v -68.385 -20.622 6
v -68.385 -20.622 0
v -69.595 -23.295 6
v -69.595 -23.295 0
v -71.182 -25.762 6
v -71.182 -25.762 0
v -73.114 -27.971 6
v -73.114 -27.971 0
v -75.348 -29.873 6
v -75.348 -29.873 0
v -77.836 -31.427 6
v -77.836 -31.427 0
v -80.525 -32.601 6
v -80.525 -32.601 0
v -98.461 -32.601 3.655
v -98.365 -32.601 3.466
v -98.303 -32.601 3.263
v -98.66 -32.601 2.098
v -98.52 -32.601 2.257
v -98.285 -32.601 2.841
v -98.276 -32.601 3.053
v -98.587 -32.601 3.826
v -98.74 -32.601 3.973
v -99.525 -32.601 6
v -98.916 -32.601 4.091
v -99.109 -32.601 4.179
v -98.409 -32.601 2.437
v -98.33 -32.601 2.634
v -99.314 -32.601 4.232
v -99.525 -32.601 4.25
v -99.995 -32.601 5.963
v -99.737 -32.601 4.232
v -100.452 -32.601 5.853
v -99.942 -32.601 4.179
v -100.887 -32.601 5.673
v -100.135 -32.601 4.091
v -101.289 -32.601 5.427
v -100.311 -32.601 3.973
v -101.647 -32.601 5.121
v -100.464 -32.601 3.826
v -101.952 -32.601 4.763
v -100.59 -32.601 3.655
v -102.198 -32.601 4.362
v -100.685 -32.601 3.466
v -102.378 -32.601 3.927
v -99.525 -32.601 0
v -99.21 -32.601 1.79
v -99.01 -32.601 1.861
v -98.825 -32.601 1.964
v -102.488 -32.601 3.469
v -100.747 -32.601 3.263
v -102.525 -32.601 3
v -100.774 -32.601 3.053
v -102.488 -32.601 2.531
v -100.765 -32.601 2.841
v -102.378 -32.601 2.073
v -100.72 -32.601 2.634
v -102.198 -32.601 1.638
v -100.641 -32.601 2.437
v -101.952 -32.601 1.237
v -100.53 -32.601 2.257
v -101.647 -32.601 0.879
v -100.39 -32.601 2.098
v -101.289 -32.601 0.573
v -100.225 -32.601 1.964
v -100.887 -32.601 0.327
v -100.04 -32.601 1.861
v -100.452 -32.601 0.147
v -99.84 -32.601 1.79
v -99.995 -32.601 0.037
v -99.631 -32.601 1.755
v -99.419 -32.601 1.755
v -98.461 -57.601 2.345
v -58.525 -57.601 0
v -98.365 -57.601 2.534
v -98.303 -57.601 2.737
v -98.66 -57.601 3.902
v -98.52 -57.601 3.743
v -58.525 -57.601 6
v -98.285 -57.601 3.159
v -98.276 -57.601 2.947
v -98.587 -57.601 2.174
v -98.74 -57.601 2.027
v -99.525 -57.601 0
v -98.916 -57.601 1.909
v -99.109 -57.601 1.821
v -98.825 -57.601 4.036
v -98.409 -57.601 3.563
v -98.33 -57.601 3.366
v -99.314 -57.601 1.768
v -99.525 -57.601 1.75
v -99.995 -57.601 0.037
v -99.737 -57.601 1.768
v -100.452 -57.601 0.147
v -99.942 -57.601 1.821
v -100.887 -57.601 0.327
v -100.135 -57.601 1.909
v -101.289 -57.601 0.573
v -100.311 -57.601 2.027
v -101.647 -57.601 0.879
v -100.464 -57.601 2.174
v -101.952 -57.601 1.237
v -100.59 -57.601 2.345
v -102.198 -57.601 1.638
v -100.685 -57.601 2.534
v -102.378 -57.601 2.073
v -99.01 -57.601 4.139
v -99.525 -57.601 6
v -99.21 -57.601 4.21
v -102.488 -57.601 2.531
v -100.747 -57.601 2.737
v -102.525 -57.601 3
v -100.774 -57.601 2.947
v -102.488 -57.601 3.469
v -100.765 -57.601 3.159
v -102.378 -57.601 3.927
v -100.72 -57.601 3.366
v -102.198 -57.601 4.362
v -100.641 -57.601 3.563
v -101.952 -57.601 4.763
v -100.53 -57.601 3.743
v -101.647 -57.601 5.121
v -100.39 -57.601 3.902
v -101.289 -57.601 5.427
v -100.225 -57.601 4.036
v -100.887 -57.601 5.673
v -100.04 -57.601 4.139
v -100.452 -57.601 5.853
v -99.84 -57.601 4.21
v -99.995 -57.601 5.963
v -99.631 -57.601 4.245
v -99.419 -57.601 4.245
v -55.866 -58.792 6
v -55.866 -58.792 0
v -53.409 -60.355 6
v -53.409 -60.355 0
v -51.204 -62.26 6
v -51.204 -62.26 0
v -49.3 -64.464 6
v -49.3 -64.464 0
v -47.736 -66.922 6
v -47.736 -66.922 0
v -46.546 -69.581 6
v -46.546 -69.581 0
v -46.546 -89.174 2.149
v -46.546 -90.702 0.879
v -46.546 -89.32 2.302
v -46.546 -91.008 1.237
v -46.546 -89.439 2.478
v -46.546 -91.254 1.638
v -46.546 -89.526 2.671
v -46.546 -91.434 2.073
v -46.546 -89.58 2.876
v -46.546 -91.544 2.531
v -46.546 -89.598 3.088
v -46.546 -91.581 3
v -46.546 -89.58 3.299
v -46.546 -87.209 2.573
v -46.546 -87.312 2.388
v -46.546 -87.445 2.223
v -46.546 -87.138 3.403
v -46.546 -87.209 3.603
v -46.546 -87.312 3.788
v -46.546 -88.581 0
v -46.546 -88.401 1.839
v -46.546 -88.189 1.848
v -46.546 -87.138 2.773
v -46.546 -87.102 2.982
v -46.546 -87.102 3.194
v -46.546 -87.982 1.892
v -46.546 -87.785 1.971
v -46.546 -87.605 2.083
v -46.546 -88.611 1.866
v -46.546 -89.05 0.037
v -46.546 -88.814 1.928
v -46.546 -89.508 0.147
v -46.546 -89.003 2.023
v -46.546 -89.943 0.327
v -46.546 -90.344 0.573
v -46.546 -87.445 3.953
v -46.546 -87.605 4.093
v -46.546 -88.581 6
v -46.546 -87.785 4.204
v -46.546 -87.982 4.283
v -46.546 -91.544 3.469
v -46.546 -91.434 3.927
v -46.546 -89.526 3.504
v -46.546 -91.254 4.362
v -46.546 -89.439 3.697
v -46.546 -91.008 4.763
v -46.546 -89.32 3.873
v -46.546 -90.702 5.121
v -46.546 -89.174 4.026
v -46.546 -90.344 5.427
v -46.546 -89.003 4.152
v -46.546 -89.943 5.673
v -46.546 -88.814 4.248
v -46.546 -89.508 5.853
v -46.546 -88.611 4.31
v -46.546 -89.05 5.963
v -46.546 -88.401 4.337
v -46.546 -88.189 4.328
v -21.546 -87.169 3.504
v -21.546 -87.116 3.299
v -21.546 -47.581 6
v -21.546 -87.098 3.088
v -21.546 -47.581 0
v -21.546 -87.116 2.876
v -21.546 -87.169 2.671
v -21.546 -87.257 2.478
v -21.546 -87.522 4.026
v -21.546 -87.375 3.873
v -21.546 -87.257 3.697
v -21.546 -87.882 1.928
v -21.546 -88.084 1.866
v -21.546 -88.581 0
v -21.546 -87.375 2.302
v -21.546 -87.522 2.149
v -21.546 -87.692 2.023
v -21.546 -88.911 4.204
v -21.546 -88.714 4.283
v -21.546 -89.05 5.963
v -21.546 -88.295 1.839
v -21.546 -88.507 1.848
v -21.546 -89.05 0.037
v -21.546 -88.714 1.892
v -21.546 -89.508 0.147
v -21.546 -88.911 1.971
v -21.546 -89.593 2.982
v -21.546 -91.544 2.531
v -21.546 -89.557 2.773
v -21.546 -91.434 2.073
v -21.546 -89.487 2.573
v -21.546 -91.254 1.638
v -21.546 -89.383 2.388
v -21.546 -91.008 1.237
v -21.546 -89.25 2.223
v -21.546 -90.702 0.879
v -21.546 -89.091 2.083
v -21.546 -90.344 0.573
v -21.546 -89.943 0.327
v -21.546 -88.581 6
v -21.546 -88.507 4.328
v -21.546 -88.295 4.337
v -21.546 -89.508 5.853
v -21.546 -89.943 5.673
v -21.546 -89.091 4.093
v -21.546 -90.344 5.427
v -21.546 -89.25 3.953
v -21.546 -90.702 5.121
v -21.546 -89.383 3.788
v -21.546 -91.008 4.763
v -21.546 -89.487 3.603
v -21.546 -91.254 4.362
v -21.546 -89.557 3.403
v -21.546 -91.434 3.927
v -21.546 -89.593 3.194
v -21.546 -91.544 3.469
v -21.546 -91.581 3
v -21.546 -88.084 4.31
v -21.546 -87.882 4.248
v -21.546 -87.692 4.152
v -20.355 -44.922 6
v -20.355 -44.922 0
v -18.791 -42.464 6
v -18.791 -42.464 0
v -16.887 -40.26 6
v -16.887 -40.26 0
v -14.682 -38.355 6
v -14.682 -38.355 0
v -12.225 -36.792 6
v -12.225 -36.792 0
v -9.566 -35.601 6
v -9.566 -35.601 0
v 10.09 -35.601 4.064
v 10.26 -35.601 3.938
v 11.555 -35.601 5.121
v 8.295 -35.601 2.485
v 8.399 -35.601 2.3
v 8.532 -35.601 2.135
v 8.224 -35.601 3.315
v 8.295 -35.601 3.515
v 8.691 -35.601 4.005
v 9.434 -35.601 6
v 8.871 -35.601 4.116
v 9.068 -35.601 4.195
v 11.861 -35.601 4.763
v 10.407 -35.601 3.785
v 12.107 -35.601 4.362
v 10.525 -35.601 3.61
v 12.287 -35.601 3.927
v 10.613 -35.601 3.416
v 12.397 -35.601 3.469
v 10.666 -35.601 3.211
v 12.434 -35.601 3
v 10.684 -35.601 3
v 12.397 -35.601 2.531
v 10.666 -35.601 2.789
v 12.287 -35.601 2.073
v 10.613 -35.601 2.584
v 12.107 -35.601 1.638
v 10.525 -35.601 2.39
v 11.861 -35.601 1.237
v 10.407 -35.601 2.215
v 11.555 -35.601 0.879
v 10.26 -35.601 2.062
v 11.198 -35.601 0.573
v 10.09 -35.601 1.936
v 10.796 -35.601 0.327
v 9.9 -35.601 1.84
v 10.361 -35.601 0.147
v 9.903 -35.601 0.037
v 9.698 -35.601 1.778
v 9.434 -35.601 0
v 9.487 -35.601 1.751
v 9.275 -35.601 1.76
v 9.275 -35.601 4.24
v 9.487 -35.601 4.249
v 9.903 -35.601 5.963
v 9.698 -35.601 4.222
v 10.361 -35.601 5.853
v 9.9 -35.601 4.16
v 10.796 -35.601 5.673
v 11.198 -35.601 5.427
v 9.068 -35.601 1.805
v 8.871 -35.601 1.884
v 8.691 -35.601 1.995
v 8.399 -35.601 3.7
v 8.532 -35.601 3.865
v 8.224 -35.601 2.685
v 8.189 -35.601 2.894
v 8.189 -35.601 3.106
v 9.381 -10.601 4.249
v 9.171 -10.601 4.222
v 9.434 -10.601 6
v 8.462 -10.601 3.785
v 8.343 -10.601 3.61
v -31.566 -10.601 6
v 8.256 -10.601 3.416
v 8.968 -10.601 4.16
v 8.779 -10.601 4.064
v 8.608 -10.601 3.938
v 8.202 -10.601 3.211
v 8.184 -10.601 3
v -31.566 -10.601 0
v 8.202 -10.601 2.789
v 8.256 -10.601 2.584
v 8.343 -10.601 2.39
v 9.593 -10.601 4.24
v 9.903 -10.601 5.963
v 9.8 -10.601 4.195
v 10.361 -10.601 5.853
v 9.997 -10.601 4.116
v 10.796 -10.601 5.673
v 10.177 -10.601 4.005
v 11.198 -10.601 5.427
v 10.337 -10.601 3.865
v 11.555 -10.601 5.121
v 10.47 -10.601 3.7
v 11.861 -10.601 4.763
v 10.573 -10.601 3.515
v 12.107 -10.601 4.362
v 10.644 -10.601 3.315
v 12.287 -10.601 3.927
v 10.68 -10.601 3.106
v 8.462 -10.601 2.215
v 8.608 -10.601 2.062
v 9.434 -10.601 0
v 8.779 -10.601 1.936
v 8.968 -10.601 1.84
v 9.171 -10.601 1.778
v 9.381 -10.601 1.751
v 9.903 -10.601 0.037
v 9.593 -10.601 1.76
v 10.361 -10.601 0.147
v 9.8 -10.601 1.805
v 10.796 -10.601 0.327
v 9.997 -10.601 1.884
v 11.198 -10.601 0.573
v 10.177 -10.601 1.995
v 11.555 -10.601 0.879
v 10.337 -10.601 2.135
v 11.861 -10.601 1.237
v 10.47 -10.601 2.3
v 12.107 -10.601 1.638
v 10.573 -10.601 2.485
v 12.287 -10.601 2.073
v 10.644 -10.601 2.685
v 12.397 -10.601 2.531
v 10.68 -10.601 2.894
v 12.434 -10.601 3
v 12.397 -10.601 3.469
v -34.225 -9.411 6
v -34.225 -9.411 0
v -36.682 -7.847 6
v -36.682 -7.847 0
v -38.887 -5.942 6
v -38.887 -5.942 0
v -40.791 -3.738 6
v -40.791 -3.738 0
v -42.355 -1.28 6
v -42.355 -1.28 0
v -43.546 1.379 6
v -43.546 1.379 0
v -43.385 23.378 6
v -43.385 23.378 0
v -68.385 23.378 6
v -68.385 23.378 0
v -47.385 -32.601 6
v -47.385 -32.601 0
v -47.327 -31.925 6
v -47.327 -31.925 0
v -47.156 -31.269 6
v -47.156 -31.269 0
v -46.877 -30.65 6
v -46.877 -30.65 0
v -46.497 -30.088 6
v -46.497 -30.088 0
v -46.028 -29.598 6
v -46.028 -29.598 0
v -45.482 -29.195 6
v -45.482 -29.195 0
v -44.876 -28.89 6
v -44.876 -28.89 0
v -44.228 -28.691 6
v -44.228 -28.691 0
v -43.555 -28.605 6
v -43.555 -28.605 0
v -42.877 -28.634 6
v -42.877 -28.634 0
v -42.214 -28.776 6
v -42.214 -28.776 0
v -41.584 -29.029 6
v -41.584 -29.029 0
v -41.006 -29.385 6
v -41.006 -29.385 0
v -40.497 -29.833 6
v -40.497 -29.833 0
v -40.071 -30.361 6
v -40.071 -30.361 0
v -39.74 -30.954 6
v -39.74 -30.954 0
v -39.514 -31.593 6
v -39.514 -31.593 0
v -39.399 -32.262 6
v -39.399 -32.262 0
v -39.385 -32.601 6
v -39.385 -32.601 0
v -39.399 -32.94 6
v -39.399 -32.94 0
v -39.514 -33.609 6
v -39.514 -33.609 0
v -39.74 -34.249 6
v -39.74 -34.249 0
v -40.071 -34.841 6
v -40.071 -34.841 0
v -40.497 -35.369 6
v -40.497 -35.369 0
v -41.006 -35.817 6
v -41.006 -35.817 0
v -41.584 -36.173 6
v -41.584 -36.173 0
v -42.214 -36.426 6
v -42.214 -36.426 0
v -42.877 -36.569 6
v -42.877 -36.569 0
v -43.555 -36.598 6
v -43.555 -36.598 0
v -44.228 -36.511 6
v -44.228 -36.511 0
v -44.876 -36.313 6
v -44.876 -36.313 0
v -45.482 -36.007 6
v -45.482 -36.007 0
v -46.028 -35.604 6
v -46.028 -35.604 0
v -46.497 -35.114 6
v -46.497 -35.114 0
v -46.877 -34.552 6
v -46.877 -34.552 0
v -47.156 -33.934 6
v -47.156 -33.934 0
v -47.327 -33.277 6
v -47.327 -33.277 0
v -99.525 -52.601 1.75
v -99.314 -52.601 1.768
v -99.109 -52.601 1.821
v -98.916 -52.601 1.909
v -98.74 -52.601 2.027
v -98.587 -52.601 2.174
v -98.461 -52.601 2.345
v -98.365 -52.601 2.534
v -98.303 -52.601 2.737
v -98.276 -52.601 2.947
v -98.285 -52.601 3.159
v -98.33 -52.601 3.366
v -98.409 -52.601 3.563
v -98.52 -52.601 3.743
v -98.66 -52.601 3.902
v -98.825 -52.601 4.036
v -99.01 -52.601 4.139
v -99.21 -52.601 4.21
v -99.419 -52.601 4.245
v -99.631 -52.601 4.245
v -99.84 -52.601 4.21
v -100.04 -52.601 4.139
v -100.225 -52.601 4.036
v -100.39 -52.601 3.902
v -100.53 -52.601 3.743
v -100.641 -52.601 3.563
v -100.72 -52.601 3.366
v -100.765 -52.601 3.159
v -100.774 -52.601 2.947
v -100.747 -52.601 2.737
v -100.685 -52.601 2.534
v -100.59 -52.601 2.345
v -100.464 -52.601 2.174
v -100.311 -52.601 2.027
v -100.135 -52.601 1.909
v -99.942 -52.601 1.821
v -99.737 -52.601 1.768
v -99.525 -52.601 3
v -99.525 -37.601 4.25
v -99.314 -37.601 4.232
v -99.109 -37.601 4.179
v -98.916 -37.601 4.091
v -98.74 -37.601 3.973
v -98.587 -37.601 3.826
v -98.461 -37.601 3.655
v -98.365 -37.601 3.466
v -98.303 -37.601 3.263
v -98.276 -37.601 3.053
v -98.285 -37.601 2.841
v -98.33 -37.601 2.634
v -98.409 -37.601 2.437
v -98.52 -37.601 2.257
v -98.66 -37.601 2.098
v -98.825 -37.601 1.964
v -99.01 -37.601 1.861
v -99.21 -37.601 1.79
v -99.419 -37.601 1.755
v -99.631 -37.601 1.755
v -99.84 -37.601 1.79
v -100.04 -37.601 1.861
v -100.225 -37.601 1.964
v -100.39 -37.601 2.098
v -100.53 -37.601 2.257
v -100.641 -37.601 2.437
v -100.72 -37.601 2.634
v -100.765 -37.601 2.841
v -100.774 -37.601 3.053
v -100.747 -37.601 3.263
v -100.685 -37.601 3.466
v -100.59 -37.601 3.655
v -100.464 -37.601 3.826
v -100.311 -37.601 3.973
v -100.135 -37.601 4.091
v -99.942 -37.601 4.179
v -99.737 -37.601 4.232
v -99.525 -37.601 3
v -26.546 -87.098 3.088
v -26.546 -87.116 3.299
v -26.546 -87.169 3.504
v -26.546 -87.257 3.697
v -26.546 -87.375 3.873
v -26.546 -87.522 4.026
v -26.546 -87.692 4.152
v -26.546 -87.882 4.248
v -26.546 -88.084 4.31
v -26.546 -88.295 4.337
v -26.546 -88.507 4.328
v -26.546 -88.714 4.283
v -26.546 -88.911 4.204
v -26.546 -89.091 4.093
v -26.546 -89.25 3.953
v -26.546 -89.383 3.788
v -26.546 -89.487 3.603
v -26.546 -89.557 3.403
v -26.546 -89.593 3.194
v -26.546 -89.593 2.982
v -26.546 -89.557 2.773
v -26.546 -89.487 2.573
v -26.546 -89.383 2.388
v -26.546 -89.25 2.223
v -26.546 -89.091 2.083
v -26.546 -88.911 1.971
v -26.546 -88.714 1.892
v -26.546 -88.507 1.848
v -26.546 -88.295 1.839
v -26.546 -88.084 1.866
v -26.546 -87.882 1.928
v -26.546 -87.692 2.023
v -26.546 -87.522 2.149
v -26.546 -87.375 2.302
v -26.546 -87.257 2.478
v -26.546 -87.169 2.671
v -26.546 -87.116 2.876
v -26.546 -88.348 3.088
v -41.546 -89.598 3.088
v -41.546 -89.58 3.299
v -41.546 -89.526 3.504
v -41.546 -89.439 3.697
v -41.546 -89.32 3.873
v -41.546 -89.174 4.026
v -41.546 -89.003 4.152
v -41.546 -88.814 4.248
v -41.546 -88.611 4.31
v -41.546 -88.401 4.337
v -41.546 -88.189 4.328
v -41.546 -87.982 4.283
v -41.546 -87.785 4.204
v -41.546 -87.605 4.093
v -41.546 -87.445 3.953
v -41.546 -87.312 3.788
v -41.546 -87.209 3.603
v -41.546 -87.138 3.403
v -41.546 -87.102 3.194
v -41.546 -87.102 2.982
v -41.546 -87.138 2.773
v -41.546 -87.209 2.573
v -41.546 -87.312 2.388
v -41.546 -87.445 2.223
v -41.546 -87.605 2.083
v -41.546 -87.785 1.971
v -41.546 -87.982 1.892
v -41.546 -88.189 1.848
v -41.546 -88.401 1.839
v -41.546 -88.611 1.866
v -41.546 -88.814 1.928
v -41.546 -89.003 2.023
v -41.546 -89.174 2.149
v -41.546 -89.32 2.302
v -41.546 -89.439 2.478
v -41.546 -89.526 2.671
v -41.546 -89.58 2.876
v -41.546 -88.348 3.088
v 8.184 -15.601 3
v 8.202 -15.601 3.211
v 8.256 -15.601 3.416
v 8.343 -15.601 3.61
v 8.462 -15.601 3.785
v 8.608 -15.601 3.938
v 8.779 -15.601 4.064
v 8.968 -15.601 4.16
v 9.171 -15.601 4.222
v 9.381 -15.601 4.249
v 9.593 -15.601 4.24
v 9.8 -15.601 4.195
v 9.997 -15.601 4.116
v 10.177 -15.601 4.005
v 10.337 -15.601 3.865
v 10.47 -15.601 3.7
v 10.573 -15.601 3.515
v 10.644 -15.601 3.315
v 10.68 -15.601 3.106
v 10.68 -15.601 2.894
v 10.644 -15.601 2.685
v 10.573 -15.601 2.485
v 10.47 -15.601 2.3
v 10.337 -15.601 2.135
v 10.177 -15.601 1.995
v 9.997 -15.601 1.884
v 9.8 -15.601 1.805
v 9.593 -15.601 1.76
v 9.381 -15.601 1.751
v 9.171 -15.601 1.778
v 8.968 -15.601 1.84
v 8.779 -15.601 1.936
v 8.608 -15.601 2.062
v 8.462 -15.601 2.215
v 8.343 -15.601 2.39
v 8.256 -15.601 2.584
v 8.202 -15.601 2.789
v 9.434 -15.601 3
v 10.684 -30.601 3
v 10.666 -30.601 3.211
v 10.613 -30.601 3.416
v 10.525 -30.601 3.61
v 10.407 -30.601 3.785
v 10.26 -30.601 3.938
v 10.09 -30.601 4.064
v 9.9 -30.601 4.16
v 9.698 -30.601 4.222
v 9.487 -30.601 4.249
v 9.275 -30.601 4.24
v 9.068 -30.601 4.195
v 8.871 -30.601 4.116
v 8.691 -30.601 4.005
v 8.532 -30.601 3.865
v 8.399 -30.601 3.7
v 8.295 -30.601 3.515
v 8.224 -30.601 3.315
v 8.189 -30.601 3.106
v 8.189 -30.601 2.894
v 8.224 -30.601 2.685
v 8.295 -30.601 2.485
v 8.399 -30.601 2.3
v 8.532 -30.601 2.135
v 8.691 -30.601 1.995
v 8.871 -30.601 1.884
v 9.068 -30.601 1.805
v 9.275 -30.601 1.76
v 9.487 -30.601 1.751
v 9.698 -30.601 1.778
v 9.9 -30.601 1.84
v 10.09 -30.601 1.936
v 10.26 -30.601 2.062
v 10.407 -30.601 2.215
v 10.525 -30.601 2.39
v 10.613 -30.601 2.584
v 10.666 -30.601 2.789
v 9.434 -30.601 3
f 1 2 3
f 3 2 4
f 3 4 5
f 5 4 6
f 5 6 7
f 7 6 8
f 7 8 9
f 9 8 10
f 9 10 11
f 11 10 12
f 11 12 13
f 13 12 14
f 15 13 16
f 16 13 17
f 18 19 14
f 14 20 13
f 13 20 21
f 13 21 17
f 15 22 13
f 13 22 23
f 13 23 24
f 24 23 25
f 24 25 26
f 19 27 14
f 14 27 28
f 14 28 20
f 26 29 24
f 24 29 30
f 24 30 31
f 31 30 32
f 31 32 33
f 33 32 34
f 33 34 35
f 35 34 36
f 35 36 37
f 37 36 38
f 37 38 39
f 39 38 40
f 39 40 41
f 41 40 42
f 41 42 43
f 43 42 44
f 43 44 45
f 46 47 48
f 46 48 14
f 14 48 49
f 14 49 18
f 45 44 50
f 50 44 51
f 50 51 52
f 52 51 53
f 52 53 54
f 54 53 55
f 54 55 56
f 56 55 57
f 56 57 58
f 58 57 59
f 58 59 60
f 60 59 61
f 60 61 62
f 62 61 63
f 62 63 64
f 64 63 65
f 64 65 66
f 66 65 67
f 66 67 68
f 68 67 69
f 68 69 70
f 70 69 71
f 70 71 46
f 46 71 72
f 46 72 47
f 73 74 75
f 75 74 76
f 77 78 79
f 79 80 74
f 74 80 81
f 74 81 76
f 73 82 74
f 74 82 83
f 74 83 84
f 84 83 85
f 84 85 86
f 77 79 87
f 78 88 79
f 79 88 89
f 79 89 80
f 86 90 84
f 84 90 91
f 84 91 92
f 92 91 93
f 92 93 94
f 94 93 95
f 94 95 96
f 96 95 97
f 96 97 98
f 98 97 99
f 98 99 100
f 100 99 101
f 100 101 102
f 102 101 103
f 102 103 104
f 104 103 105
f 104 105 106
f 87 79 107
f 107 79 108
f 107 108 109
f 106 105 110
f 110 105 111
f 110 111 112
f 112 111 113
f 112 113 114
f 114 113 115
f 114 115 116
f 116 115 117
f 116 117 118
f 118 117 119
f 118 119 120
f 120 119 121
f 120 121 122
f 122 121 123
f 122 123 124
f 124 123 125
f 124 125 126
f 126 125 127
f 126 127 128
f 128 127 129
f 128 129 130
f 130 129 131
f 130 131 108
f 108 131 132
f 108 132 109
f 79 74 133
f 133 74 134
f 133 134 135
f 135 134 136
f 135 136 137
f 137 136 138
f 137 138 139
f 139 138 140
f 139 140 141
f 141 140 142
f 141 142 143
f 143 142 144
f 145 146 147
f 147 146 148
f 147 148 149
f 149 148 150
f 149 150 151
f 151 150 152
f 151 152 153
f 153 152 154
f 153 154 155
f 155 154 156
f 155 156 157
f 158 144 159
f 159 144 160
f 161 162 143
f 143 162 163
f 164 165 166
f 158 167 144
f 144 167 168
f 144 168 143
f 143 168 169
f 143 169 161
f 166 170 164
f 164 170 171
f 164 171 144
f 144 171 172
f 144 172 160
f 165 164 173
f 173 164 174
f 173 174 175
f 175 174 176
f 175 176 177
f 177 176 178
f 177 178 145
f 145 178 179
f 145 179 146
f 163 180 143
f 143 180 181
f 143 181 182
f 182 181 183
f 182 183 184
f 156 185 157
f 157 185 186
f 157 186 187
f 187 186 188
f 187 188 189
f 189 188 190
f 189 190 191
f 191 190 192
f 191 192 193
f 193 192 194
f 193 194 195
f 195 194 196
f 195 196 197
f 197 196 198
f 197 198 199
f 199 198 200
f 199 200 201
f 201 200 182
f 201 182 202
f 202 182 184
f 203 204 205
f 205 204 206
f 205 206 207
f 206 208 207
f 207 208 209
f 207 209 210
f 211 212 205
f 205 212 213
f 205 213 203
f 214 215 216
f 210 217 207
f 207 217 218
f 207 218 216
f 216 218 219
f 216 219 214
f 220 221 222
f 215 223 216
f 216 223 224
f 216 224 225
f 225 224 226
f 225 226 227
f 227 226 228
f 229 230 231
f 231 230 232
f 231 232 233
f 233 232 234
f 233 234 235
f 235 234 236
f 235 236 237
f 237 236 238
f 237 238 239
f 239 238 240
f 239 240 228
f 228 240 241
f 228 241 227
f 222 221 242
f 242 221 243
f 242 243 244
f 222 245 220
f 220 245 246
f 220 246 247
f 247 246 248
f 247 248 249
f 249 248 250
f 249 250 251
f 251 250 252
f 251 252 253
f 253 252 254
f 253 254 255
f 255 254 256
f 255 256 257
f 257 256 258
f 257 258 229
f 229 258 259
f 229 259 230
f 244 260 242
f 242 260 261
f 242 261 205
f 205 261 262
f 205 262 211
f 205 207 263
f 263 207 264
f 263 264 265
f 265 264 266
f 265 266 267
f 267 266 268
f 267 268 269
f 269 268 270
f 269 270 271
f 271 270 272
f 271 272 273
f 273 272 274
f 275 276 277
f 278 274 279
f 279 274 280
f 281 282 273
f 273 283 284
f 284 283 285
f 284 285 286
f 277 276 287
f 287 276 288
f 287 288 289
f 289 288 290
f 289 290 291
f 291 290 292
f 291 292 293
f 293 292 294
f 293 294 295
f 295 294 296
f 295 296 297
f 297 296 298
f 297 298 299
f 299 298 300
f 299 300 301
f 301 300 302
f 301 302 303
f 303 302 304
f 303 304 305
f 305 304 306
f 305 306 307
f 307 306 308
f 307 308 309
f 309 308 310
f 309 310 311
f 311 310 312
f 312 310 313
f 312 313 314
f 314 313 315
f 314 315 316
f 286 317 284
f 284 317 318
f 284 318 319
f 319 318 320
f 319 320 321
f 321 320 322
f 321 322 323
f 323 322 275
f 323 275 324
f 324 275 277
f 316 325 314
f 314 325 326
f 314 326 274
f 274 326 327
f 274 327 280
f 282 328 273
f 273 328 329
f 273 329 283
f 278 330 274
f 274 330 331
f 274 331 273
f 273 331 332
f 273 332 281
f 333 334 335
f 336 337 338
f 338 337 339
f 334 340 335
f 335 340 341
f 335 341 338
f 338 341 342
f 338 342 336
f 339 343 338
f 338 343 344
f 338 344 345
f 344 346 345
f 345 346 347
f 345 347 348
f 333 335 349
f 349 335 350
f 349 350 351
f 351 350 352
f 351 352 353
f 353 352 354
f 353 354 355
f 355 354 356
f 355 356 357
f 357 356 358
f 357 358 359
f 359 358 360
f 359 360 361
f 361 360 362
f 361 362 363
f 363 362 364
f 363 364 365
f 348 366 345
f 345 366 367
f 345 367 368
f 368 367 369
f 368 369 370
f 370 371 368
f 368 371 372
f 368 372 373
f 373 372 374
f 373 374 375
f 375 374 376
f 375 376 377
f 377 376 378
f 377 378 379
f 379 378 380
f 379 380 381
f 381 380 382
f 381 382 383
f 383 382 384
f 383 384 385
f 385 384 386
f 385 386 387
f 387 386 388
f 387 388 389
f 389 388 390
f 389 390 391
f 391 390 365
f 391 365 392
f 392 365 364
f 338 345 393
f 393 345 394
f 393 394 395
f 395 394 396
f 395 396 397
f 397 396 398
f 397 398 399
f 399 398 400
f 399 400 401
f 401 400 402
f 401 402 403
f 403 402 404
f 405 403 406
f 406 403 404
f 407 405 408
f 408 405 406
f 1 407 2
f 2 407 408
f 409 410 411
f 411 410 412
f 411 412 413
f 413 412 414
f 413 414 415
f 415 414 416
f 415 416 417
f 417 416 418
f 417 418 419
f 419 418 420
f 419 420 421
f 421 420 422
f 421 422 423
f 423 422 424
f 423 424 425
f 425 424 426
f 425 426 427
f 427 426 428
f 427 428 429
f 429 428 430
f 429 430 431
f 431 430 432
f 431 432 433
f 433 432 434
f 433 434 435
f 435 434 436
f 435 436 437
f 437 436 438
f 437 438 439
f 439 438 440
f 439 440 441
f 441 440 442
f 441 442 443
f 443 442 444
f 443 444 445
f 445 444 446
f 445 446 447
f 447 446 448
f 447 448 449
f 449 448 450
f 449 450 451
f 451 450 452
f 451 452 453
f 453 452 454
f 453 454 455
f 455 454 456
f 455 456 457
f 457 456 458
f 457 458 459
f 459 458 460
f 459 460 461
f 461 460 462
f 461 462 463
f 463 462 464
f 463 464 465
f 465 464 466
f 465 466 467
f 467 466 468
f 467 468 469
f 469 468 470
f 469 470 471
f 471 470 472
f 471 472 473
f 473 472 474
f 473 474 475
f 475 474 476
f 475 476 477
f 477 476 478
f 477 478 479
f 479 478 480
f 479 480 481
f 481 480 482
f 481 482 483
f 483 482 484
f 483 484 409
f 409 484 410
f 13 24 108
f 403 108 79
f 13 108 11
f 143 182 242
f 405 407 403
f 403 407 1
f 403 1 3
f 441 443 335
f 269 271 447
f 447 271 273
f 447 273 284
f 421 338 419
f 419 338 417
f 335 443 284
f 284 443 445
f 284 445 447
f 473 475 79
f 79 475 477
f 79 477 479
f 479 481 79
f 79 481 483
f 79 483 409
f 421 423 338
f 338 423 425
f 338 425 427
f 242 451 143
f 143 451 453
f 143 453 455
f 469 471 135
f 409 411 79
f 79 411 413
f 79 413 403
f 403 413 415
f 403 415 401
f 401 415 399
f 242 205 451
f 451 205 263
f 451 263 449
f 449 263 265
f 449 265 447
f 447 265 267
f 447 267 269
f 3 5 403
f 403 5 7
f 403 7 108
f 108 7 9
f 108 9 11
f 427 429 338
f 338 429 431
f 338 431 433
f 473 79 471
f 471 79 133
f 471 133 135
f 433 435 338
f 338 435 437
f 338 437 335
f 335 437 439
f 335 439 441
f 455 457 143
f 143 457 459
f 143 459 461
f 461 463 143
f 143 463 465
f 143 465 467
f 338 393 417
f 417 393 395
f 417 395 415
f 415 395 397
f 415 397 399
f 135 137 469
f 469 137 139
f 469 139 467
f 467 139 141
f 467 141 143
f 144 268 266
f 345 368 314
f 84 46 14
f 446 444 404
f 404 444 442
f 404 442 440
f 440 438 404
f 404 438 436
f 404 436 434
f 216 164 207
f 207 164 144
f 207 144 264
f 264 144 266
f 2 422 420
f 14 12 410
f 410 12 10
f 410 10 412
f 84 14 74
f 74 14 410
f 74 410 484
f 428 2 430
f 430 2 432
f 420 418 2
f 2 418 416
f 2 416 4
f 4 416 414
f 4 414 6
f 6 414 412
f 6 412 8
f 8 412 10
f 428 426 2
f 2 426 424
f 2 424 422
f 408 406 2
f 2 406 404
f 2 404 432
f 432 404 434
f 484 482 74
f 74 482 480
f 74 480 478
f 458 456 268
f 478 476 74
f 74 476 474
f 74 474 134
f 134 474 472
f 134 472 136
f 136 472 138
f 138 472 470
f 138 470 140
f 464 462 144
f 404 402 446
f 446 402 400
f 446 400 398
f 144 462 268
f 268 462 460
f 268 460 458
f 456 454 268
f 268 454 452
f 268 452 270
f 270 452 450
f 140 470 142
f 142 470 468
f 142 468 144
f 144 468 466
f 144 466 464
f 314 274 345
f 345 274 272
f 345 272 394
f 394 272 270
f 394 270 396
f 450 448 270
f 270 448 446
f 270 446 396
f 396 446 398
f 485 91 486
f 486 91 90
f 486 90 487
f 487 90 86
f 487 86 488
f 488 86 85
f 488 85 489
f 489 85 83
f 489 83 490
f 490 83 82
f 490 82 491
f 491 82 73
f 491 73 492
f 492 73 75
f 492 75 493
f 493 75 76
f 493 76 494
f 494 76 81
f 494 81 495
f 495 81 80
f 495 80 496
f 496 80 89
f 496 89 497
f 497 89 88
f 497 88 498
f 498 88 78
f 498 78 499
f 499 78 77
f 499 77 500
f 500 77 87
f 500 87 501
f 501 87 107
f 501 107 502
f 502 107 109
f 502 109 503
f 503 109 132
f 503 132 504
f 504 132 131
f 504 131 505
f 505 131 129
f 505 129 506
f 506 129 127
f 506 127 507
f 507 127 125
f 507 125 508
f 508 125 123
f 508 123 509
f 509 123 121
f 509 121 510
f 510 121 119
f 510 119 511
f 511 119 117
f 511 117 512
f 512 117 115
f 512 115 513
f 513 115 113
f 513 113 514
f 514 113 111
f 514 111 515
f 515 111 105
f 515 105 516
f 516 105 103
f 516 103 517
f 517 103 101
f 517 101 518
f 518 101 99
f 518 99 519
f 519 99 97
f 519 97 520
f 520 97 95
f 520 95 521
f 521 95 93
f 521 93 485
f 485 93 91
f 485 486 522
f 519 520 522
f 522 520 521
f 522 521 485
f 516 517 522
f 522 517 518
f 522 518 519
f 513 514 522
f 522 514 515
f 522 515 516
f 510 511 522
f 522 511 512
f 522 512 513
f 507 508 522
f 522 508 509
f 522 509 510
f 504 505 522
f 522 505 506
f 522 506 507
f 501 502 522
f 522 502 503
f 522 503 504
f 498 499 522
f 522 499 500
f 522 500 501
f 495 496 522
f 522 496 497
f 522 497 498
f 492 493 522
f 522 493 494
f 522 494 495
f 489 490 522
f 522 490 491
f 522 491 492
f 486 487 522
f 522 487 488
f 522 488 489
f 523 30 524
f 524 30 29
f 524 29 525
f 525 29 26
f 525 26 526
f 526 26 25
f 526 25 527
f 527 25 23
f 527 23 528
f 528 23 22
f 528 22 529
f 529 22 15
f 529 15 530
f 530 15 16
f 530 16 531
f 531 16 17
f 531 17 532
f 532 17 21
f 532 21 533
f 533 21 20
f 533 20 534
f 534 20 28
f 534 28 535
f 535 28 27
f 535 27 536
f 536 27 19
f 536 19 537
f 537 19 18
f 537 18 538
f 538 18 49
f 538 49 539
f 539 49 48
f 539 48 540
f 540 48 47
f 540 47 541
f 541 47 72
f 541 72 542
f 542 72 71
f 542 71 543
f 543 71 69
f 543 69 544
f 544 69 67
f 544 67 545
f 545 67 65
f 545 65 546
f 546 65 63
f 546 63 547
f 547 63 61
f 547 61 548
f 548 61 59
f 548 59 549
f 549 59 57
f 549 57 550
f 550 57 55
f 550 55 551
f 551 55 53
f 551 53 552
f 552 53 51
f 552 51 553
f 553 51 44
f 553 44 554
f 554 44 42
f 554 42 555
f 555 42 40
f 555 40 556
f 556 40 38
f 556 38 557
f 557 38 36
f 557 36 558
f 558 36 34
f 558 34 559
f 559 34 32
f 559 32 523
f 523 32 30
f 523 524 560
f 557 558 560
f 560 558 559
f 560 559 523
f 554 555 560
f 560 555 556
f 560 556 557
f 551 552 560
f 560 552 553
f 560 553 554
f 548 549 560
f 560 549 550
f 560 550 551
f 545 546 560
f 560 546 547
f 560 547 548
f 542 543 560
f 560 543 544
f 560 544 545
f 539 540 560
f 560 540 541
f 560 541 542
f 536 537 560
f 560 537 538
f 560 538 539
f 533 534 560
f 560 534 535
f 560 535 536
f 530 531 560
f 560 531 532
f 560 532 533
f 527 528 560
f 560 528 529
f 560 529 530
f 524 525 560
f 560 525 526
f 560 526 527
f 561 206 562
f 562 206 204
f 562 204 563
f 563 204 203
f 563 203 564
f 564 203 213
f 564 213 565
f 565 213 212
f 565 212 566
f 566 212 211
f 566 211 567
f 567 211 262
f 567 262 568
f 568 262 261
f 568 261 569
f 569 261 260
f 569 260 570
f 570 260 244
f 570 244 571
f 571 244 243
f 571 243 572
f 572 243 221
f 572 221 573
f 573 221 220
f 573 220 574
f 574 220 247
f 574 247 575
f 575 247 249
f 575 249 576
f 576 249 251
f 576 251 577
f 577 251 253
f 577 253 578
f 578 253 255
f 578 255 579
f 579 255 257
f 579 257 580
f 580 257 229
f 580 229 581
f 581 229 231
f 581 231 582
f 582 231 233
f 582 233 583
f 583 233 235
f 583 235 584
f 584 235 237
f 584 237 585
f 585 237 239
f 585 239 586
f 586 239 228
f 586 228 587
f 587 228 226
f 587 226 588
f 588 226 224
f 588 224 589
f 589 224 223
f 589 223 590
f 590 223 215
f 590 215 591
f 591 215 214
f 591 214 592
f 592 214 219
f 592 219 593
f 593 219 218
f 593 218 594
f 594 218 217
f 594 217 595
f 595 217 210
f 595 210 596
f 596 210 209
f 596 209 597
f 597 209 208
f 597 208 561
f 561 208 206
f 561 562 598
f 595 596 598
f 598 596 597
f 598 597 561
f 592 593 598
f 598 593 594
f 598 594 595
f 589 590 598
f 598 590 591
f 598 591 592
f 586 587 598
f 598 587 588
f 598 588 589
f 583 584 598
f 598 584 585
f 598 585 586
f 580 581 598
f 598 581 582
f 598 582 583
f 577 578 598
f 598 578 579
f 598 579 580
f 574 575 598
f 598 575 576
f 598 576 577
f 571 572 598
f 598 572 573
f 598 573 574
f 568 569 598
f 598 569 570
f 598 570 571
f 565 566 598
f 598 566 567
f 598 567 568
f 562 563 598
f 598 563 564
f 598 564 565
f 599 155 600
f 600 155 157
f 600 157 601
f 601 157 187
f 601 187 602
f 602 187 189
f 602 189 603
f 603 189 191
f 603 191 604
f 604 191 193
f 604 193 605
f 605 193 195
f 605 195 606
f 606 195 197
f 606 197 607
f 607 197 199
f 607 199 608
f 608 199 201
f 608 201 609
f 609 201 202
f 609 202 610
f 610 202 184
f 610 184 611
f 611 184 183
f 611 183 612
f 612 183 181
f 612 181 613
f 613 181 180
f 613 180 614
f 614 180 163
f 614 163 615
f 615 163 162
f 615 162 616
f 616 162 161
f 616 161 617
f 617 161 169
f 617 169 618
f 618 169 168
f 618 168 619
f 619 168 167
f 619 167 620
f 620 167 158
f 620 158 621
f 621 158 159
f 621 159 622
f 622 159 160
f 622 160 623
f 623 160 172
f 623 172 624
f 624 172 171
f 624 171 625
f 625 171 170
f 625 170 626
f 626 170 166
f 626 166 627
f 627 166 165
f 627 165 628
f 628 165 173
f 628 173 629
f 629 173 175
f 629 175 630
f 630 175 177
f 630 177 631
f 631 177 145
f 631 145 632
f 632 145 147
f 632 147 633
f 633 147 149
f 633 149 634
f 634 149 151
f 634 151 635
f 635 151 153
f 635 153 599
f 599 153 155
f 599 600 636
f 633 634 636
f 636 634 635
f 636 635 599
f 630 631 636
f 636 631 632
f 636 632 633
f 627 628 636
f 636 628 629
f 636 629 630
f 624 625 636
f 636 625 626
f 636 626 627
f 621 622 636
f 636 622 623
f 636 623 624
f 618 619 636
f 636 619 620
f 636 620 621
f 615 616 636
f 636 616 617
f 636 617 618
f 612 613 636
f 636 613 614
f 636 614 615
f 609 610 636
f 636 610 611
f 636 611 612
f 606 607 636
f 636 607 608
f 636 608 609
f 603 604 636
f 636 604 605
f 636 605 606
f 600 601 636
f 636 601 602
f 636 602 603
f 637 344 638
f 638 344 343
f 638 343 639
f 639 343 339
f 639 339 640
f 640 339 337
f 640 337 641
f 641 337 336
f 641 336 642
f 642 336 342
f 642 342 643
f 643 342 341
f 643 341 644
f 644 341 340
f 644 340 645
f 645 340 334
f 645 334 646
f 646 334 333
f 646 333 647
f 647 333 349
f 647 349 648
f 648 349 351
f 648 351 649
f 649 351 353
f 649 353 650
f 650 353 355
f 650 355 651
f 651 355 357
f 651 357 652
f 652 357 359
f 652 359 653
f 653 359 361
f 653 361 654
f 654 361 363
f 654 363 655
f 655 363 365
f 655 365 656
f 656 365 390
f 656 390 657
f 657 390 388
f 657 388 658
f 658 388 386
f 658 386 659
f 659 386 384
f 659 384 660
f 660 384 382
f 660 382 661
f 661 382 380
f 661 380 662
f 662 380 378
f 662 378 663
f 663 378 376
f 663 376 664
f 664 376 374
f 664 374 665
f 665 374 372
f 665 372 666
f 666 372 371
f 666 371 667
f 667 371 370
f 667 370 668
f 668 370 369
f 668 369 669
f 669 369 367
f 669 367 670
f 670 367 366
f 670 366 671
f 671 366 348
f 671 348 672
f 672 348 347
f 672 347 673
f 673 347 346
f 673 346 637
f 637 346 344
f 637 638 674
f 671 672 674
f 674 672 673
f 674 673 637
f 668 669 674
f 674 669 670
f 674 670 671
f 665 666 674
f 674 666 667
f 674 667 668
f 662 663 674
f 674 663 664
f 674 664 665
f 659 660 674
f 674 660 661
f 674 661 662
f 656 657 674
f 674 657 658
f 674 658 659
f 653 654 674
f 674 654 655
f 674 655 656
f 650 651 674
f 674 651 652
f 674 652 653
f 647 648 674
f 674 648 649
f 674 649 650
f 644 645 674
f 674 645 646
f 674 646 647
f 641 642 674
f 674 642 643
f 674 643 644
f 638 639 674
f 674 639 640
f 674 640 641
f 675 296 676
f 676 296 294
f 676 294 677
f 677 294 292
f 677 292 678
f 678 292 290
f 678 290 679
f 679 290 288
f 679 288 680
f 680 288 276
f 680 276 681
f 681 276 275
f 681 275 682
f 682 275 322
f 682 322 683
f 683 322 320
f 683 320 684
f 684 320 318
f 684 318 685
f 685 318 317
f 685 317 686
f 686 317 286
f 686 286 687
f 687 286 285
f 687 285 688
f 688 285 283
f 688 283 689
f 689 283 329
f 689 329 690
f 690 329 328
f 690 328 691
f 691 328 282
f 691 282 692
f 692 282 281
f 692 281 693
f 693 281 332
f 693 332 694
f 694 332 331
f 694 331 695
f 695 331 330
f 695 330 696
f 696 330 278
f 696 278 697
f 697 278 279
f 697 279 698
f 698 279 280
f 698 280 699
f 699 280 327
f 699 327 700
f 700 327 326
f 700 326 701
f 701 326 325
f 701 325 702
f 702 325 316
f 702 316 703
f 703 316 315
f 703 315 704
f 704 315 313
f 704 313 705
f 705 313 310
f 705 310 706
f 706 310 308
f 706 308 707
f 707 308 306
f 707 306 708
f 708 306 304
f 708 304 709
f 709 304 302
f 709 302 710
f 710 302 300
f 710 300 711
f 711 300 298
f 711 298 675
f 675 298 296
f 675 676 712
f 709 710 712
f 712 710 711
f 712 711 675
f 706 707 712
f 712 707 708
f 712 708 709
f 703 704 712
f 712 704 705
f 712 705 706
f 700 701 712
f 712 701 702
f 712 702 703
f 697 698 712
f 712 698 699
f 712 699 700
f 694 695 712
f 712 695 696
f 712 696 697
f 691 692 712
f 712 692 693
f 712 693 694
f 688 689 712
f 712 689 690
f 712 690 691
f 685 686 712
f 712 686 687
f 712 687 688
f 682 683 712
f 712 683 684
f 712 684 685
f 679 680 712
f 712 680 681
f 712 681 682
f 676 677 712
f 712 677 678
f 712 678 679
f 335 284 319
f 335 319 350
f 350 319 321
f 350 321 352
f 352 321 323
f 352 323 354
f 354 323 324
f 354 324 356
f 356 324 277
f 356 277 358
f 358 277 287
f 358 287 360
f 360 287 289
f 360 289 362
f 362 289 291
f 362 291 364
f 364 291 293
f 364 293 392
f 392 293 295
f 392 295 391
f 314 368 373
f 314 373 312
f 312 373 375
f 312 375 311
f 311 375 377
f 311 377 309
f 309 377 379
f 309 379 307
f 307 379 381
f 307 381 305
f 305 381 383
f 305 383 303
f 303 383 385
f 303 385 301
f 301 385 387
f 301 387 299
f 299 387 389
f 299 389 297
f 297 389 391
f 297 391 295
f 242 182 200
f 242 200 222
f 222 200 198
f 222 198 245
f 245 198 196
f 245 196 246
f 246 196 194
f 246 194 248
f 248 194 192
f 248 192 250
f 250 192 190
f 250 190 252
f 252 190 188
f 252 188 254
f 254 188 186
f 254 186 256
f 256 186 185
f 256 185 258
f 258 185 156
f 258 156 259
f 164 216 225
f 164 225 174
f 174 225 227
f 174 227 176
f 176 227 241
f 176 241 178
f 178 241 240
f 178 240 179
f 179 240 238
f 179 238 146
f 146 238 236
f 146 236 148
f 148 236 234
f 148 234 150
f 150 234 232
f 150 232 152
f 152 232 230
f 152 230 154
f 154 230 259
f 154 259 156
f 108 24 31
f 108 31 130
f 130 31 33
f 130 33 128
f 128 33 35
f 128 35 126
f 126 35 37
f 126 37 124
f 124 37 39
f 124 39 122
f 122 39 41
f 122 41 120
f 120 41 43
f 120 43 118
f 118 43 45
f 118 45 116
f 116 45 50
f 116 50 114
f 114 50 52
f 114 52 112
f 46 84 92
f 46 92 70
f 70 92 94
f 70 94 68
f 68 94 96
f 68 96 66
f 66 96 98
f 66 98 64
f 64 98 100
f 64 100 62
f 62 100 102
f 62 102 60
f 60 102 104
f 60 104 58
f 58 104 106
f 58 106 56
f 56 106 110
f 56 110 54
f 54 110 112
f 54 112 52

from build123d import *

# Parameters (mm, degrees)
SKETCH_2_R          = 4
EXTRUDE_1_DEPTH     = 6
SKETCH_3_R          = 1.25
CUT_EXTRUDE_1_DEPTH = 5
CUT_EXTRUDE_START   = -5
SKETCH_4_R          = 1.25
CUT_EXTRUDE_2_DEPTH = 5
SKETCH_5_R          = 1.25
CUT_EXTRUDE_3_DEPTH = 5
SKETCH_6_R          = 1.25
CUT_EXTRUDE_4_DEPTH = 5
SKETCH_8_R          = 1.25
CUT_EXTRUDE_5_DEPTH = 5
SKETCH_9_R          = 1.25
CUT_EXTRUDE_6_DEPTH = 5
FILLET_2_R          = 3


with BuildPart() as part:
    # 스케치2 → 보스-돌출1 (new body)
    with BuildSketch(Plane.XY):
        with BuildLine():
            Line((-102.525284978, -57.601148056), (-102.525284978, -32.601148056))
            Line((-102.525284978, -32.601148056), (-80.525284978, -32.601148056))
            ThreePointArc((-80.525284978, -32.601148056), (-73.11411316, -27.970582536), (-68.384824454, -20.622015799))
            Line((-68.384824454, -20.622015799), (-68.384824454, 23.377984201))
            Line((-68.384824454, 23.377984201), (-43.384824454, 23.377984201))
            Line((-43.384824454, 23.377984201), (-43.545565494, 1.378571429))
            ThreePointArc((-43.545565494, 1.378571429), (-38.886846868, -5.94242943), (-31.565846009, -10.601148056))
            Line((-31.565846009, -10.601148056), (12.434153991, -10.601148056))
            Line((12.434153991, -10.601148056), (12.434153991, -35.601148056))
            Line((12.434153991, -35.601148056), (-9.565846009, -35.601148056))
            ThreePointArc((-9.565846009, -35.601148056), (-16.886846868, -40.259866682), (-21.545565494, -47.580867541))
            Line((-21.545565494, -47.580867541), (-21.545565494, -91.580867541))
            Line((-21.545565494, -91.580867541), (-46.545565494, -91.580867541))
            Line((-46.545565494, -91.580867541), (-46.545565494, -69.580867541))
            ThreePointArc((-46.545565494, -69.580867541), (-51.20428412, -62.259866682), (-58.525284978, -57.601148056))
            Line((-58.525284978, -57.601148056), (-102.525284978, -57.601148056))
        make_face()
        with Locations((-43.384824454, -32.601148056)):
            Circle(SKETCH_2_R, mode=Mode.SUBTRACT)
    extrude(amount=EXTRUDE_1_DEPTH)

    # 스케치3 → 컷-돌출1 (cut)
    with BuildSketch(Plane(origin=(0, -57.601148056, 0), x_dir=(-1, 0, 0), z_dir=(0, -1, 0))):
        with Locations(Location((99.525284978, -3, 0), (0, 0, 90))):
            Circle(SKETCH_3_R)
    extrude(amount=-CUT_EXTRUDE_1_DEPTH, mode=Mode.SUBTRACT)

    # 스케치4 → 컷-돌출2 (cut)
    with BuildSketch(Plane(origin=(0, -32.601148056, 0), x_dir=(1, 0, 0), z_dir=(0, 1, 0)).offset(CUT_EXTRUDE_START)):
        with Locations(Location((-99.525284978, -3, 0), (0, 0, 90))):
            Circle(SKETCH_4_R)
    extrude(amount=CUT_EXTRUDE_2_DEPTH, mode=Mode.SUBTRACT)

    # 스케치5 → 컷-돌출3 (cut)
    with BuildSketch(Plane(origin=(-21.545565494, 0, 0), x_dir=(0, 0, -1), z_dir=(1, 0, 0))):
        with Locations(Location((-3.087647422, -88.347802665, 0), (0, 0, 90))):
            Circle(SKETCH_5_R)
    extrude(amount=-CUT_EXTRUDE_3_DEPTH, mode=Mode.SUBTRACT)

    # 스케치6 → 컷-돌출4 (cut)
    with BuildSketch(Plane.ZY.offset(46.545565494).offset(CUT_EXTRUDE_START)):
        with Locations(Location((3.087647422, -88.347802665, 0), (0, 0, 90))):
            Circle(SKETCH_6_R)
    extrude(amount=CUT_EXTRUDE_4_DEPTH, mode=Mode.SUBTRACT)

    # 스케치8 → 컷-돌출5 (cut)
    with BuildSketch(Plane(origin=(0, -10.601148056, 0), x_dir=(1, 0, 0), z_dir=(0, 1, 0))):
        with Locations(Location((9.434153991, -3, 0), (0, 0, 180))):
            Circle(SKETCH_8_R)
    extrude(amount=-CUT_EXTRUDE_5_DEPTH, mode=Mode.SUBTRACT)

    # 스케치9 → 컷-돌출6 (cut)
    with BuildSketch(Plane(origin=(0, -35.601148056, 0), x_dir=(-1, 0, 0), z_dir=(0, -1, 0)).offset(CUT_EXTRUDE_START)):
        with Locations((-9.434153991, -3)):
            Circle(SKETCH_9_R)
    extrude(amount=CUT_EXTRUDE_6_DEPTH, mode=Mode.SUBTRACT)

    # 필렛2
    fillet_2_edges = [part.edges().sort_by_distance(p)[0] for p in [
        (12.434153991, -23.101148056, 0),
        (12.434153991, -23.101148056, 6),
        (-34.045565494, -91.580867541, 0),
        (-34.045565494, -91.580867541, 6),
        (-102.525284978, -45.101148056, 0),
        (-102.525284978, -45.101148056, 6),
    ]]
    fillet(fillet_2_edges, radius=FILLET_2_R - 0.0001)  # a hair under: the kernel refuses the full size


solid = part.part
